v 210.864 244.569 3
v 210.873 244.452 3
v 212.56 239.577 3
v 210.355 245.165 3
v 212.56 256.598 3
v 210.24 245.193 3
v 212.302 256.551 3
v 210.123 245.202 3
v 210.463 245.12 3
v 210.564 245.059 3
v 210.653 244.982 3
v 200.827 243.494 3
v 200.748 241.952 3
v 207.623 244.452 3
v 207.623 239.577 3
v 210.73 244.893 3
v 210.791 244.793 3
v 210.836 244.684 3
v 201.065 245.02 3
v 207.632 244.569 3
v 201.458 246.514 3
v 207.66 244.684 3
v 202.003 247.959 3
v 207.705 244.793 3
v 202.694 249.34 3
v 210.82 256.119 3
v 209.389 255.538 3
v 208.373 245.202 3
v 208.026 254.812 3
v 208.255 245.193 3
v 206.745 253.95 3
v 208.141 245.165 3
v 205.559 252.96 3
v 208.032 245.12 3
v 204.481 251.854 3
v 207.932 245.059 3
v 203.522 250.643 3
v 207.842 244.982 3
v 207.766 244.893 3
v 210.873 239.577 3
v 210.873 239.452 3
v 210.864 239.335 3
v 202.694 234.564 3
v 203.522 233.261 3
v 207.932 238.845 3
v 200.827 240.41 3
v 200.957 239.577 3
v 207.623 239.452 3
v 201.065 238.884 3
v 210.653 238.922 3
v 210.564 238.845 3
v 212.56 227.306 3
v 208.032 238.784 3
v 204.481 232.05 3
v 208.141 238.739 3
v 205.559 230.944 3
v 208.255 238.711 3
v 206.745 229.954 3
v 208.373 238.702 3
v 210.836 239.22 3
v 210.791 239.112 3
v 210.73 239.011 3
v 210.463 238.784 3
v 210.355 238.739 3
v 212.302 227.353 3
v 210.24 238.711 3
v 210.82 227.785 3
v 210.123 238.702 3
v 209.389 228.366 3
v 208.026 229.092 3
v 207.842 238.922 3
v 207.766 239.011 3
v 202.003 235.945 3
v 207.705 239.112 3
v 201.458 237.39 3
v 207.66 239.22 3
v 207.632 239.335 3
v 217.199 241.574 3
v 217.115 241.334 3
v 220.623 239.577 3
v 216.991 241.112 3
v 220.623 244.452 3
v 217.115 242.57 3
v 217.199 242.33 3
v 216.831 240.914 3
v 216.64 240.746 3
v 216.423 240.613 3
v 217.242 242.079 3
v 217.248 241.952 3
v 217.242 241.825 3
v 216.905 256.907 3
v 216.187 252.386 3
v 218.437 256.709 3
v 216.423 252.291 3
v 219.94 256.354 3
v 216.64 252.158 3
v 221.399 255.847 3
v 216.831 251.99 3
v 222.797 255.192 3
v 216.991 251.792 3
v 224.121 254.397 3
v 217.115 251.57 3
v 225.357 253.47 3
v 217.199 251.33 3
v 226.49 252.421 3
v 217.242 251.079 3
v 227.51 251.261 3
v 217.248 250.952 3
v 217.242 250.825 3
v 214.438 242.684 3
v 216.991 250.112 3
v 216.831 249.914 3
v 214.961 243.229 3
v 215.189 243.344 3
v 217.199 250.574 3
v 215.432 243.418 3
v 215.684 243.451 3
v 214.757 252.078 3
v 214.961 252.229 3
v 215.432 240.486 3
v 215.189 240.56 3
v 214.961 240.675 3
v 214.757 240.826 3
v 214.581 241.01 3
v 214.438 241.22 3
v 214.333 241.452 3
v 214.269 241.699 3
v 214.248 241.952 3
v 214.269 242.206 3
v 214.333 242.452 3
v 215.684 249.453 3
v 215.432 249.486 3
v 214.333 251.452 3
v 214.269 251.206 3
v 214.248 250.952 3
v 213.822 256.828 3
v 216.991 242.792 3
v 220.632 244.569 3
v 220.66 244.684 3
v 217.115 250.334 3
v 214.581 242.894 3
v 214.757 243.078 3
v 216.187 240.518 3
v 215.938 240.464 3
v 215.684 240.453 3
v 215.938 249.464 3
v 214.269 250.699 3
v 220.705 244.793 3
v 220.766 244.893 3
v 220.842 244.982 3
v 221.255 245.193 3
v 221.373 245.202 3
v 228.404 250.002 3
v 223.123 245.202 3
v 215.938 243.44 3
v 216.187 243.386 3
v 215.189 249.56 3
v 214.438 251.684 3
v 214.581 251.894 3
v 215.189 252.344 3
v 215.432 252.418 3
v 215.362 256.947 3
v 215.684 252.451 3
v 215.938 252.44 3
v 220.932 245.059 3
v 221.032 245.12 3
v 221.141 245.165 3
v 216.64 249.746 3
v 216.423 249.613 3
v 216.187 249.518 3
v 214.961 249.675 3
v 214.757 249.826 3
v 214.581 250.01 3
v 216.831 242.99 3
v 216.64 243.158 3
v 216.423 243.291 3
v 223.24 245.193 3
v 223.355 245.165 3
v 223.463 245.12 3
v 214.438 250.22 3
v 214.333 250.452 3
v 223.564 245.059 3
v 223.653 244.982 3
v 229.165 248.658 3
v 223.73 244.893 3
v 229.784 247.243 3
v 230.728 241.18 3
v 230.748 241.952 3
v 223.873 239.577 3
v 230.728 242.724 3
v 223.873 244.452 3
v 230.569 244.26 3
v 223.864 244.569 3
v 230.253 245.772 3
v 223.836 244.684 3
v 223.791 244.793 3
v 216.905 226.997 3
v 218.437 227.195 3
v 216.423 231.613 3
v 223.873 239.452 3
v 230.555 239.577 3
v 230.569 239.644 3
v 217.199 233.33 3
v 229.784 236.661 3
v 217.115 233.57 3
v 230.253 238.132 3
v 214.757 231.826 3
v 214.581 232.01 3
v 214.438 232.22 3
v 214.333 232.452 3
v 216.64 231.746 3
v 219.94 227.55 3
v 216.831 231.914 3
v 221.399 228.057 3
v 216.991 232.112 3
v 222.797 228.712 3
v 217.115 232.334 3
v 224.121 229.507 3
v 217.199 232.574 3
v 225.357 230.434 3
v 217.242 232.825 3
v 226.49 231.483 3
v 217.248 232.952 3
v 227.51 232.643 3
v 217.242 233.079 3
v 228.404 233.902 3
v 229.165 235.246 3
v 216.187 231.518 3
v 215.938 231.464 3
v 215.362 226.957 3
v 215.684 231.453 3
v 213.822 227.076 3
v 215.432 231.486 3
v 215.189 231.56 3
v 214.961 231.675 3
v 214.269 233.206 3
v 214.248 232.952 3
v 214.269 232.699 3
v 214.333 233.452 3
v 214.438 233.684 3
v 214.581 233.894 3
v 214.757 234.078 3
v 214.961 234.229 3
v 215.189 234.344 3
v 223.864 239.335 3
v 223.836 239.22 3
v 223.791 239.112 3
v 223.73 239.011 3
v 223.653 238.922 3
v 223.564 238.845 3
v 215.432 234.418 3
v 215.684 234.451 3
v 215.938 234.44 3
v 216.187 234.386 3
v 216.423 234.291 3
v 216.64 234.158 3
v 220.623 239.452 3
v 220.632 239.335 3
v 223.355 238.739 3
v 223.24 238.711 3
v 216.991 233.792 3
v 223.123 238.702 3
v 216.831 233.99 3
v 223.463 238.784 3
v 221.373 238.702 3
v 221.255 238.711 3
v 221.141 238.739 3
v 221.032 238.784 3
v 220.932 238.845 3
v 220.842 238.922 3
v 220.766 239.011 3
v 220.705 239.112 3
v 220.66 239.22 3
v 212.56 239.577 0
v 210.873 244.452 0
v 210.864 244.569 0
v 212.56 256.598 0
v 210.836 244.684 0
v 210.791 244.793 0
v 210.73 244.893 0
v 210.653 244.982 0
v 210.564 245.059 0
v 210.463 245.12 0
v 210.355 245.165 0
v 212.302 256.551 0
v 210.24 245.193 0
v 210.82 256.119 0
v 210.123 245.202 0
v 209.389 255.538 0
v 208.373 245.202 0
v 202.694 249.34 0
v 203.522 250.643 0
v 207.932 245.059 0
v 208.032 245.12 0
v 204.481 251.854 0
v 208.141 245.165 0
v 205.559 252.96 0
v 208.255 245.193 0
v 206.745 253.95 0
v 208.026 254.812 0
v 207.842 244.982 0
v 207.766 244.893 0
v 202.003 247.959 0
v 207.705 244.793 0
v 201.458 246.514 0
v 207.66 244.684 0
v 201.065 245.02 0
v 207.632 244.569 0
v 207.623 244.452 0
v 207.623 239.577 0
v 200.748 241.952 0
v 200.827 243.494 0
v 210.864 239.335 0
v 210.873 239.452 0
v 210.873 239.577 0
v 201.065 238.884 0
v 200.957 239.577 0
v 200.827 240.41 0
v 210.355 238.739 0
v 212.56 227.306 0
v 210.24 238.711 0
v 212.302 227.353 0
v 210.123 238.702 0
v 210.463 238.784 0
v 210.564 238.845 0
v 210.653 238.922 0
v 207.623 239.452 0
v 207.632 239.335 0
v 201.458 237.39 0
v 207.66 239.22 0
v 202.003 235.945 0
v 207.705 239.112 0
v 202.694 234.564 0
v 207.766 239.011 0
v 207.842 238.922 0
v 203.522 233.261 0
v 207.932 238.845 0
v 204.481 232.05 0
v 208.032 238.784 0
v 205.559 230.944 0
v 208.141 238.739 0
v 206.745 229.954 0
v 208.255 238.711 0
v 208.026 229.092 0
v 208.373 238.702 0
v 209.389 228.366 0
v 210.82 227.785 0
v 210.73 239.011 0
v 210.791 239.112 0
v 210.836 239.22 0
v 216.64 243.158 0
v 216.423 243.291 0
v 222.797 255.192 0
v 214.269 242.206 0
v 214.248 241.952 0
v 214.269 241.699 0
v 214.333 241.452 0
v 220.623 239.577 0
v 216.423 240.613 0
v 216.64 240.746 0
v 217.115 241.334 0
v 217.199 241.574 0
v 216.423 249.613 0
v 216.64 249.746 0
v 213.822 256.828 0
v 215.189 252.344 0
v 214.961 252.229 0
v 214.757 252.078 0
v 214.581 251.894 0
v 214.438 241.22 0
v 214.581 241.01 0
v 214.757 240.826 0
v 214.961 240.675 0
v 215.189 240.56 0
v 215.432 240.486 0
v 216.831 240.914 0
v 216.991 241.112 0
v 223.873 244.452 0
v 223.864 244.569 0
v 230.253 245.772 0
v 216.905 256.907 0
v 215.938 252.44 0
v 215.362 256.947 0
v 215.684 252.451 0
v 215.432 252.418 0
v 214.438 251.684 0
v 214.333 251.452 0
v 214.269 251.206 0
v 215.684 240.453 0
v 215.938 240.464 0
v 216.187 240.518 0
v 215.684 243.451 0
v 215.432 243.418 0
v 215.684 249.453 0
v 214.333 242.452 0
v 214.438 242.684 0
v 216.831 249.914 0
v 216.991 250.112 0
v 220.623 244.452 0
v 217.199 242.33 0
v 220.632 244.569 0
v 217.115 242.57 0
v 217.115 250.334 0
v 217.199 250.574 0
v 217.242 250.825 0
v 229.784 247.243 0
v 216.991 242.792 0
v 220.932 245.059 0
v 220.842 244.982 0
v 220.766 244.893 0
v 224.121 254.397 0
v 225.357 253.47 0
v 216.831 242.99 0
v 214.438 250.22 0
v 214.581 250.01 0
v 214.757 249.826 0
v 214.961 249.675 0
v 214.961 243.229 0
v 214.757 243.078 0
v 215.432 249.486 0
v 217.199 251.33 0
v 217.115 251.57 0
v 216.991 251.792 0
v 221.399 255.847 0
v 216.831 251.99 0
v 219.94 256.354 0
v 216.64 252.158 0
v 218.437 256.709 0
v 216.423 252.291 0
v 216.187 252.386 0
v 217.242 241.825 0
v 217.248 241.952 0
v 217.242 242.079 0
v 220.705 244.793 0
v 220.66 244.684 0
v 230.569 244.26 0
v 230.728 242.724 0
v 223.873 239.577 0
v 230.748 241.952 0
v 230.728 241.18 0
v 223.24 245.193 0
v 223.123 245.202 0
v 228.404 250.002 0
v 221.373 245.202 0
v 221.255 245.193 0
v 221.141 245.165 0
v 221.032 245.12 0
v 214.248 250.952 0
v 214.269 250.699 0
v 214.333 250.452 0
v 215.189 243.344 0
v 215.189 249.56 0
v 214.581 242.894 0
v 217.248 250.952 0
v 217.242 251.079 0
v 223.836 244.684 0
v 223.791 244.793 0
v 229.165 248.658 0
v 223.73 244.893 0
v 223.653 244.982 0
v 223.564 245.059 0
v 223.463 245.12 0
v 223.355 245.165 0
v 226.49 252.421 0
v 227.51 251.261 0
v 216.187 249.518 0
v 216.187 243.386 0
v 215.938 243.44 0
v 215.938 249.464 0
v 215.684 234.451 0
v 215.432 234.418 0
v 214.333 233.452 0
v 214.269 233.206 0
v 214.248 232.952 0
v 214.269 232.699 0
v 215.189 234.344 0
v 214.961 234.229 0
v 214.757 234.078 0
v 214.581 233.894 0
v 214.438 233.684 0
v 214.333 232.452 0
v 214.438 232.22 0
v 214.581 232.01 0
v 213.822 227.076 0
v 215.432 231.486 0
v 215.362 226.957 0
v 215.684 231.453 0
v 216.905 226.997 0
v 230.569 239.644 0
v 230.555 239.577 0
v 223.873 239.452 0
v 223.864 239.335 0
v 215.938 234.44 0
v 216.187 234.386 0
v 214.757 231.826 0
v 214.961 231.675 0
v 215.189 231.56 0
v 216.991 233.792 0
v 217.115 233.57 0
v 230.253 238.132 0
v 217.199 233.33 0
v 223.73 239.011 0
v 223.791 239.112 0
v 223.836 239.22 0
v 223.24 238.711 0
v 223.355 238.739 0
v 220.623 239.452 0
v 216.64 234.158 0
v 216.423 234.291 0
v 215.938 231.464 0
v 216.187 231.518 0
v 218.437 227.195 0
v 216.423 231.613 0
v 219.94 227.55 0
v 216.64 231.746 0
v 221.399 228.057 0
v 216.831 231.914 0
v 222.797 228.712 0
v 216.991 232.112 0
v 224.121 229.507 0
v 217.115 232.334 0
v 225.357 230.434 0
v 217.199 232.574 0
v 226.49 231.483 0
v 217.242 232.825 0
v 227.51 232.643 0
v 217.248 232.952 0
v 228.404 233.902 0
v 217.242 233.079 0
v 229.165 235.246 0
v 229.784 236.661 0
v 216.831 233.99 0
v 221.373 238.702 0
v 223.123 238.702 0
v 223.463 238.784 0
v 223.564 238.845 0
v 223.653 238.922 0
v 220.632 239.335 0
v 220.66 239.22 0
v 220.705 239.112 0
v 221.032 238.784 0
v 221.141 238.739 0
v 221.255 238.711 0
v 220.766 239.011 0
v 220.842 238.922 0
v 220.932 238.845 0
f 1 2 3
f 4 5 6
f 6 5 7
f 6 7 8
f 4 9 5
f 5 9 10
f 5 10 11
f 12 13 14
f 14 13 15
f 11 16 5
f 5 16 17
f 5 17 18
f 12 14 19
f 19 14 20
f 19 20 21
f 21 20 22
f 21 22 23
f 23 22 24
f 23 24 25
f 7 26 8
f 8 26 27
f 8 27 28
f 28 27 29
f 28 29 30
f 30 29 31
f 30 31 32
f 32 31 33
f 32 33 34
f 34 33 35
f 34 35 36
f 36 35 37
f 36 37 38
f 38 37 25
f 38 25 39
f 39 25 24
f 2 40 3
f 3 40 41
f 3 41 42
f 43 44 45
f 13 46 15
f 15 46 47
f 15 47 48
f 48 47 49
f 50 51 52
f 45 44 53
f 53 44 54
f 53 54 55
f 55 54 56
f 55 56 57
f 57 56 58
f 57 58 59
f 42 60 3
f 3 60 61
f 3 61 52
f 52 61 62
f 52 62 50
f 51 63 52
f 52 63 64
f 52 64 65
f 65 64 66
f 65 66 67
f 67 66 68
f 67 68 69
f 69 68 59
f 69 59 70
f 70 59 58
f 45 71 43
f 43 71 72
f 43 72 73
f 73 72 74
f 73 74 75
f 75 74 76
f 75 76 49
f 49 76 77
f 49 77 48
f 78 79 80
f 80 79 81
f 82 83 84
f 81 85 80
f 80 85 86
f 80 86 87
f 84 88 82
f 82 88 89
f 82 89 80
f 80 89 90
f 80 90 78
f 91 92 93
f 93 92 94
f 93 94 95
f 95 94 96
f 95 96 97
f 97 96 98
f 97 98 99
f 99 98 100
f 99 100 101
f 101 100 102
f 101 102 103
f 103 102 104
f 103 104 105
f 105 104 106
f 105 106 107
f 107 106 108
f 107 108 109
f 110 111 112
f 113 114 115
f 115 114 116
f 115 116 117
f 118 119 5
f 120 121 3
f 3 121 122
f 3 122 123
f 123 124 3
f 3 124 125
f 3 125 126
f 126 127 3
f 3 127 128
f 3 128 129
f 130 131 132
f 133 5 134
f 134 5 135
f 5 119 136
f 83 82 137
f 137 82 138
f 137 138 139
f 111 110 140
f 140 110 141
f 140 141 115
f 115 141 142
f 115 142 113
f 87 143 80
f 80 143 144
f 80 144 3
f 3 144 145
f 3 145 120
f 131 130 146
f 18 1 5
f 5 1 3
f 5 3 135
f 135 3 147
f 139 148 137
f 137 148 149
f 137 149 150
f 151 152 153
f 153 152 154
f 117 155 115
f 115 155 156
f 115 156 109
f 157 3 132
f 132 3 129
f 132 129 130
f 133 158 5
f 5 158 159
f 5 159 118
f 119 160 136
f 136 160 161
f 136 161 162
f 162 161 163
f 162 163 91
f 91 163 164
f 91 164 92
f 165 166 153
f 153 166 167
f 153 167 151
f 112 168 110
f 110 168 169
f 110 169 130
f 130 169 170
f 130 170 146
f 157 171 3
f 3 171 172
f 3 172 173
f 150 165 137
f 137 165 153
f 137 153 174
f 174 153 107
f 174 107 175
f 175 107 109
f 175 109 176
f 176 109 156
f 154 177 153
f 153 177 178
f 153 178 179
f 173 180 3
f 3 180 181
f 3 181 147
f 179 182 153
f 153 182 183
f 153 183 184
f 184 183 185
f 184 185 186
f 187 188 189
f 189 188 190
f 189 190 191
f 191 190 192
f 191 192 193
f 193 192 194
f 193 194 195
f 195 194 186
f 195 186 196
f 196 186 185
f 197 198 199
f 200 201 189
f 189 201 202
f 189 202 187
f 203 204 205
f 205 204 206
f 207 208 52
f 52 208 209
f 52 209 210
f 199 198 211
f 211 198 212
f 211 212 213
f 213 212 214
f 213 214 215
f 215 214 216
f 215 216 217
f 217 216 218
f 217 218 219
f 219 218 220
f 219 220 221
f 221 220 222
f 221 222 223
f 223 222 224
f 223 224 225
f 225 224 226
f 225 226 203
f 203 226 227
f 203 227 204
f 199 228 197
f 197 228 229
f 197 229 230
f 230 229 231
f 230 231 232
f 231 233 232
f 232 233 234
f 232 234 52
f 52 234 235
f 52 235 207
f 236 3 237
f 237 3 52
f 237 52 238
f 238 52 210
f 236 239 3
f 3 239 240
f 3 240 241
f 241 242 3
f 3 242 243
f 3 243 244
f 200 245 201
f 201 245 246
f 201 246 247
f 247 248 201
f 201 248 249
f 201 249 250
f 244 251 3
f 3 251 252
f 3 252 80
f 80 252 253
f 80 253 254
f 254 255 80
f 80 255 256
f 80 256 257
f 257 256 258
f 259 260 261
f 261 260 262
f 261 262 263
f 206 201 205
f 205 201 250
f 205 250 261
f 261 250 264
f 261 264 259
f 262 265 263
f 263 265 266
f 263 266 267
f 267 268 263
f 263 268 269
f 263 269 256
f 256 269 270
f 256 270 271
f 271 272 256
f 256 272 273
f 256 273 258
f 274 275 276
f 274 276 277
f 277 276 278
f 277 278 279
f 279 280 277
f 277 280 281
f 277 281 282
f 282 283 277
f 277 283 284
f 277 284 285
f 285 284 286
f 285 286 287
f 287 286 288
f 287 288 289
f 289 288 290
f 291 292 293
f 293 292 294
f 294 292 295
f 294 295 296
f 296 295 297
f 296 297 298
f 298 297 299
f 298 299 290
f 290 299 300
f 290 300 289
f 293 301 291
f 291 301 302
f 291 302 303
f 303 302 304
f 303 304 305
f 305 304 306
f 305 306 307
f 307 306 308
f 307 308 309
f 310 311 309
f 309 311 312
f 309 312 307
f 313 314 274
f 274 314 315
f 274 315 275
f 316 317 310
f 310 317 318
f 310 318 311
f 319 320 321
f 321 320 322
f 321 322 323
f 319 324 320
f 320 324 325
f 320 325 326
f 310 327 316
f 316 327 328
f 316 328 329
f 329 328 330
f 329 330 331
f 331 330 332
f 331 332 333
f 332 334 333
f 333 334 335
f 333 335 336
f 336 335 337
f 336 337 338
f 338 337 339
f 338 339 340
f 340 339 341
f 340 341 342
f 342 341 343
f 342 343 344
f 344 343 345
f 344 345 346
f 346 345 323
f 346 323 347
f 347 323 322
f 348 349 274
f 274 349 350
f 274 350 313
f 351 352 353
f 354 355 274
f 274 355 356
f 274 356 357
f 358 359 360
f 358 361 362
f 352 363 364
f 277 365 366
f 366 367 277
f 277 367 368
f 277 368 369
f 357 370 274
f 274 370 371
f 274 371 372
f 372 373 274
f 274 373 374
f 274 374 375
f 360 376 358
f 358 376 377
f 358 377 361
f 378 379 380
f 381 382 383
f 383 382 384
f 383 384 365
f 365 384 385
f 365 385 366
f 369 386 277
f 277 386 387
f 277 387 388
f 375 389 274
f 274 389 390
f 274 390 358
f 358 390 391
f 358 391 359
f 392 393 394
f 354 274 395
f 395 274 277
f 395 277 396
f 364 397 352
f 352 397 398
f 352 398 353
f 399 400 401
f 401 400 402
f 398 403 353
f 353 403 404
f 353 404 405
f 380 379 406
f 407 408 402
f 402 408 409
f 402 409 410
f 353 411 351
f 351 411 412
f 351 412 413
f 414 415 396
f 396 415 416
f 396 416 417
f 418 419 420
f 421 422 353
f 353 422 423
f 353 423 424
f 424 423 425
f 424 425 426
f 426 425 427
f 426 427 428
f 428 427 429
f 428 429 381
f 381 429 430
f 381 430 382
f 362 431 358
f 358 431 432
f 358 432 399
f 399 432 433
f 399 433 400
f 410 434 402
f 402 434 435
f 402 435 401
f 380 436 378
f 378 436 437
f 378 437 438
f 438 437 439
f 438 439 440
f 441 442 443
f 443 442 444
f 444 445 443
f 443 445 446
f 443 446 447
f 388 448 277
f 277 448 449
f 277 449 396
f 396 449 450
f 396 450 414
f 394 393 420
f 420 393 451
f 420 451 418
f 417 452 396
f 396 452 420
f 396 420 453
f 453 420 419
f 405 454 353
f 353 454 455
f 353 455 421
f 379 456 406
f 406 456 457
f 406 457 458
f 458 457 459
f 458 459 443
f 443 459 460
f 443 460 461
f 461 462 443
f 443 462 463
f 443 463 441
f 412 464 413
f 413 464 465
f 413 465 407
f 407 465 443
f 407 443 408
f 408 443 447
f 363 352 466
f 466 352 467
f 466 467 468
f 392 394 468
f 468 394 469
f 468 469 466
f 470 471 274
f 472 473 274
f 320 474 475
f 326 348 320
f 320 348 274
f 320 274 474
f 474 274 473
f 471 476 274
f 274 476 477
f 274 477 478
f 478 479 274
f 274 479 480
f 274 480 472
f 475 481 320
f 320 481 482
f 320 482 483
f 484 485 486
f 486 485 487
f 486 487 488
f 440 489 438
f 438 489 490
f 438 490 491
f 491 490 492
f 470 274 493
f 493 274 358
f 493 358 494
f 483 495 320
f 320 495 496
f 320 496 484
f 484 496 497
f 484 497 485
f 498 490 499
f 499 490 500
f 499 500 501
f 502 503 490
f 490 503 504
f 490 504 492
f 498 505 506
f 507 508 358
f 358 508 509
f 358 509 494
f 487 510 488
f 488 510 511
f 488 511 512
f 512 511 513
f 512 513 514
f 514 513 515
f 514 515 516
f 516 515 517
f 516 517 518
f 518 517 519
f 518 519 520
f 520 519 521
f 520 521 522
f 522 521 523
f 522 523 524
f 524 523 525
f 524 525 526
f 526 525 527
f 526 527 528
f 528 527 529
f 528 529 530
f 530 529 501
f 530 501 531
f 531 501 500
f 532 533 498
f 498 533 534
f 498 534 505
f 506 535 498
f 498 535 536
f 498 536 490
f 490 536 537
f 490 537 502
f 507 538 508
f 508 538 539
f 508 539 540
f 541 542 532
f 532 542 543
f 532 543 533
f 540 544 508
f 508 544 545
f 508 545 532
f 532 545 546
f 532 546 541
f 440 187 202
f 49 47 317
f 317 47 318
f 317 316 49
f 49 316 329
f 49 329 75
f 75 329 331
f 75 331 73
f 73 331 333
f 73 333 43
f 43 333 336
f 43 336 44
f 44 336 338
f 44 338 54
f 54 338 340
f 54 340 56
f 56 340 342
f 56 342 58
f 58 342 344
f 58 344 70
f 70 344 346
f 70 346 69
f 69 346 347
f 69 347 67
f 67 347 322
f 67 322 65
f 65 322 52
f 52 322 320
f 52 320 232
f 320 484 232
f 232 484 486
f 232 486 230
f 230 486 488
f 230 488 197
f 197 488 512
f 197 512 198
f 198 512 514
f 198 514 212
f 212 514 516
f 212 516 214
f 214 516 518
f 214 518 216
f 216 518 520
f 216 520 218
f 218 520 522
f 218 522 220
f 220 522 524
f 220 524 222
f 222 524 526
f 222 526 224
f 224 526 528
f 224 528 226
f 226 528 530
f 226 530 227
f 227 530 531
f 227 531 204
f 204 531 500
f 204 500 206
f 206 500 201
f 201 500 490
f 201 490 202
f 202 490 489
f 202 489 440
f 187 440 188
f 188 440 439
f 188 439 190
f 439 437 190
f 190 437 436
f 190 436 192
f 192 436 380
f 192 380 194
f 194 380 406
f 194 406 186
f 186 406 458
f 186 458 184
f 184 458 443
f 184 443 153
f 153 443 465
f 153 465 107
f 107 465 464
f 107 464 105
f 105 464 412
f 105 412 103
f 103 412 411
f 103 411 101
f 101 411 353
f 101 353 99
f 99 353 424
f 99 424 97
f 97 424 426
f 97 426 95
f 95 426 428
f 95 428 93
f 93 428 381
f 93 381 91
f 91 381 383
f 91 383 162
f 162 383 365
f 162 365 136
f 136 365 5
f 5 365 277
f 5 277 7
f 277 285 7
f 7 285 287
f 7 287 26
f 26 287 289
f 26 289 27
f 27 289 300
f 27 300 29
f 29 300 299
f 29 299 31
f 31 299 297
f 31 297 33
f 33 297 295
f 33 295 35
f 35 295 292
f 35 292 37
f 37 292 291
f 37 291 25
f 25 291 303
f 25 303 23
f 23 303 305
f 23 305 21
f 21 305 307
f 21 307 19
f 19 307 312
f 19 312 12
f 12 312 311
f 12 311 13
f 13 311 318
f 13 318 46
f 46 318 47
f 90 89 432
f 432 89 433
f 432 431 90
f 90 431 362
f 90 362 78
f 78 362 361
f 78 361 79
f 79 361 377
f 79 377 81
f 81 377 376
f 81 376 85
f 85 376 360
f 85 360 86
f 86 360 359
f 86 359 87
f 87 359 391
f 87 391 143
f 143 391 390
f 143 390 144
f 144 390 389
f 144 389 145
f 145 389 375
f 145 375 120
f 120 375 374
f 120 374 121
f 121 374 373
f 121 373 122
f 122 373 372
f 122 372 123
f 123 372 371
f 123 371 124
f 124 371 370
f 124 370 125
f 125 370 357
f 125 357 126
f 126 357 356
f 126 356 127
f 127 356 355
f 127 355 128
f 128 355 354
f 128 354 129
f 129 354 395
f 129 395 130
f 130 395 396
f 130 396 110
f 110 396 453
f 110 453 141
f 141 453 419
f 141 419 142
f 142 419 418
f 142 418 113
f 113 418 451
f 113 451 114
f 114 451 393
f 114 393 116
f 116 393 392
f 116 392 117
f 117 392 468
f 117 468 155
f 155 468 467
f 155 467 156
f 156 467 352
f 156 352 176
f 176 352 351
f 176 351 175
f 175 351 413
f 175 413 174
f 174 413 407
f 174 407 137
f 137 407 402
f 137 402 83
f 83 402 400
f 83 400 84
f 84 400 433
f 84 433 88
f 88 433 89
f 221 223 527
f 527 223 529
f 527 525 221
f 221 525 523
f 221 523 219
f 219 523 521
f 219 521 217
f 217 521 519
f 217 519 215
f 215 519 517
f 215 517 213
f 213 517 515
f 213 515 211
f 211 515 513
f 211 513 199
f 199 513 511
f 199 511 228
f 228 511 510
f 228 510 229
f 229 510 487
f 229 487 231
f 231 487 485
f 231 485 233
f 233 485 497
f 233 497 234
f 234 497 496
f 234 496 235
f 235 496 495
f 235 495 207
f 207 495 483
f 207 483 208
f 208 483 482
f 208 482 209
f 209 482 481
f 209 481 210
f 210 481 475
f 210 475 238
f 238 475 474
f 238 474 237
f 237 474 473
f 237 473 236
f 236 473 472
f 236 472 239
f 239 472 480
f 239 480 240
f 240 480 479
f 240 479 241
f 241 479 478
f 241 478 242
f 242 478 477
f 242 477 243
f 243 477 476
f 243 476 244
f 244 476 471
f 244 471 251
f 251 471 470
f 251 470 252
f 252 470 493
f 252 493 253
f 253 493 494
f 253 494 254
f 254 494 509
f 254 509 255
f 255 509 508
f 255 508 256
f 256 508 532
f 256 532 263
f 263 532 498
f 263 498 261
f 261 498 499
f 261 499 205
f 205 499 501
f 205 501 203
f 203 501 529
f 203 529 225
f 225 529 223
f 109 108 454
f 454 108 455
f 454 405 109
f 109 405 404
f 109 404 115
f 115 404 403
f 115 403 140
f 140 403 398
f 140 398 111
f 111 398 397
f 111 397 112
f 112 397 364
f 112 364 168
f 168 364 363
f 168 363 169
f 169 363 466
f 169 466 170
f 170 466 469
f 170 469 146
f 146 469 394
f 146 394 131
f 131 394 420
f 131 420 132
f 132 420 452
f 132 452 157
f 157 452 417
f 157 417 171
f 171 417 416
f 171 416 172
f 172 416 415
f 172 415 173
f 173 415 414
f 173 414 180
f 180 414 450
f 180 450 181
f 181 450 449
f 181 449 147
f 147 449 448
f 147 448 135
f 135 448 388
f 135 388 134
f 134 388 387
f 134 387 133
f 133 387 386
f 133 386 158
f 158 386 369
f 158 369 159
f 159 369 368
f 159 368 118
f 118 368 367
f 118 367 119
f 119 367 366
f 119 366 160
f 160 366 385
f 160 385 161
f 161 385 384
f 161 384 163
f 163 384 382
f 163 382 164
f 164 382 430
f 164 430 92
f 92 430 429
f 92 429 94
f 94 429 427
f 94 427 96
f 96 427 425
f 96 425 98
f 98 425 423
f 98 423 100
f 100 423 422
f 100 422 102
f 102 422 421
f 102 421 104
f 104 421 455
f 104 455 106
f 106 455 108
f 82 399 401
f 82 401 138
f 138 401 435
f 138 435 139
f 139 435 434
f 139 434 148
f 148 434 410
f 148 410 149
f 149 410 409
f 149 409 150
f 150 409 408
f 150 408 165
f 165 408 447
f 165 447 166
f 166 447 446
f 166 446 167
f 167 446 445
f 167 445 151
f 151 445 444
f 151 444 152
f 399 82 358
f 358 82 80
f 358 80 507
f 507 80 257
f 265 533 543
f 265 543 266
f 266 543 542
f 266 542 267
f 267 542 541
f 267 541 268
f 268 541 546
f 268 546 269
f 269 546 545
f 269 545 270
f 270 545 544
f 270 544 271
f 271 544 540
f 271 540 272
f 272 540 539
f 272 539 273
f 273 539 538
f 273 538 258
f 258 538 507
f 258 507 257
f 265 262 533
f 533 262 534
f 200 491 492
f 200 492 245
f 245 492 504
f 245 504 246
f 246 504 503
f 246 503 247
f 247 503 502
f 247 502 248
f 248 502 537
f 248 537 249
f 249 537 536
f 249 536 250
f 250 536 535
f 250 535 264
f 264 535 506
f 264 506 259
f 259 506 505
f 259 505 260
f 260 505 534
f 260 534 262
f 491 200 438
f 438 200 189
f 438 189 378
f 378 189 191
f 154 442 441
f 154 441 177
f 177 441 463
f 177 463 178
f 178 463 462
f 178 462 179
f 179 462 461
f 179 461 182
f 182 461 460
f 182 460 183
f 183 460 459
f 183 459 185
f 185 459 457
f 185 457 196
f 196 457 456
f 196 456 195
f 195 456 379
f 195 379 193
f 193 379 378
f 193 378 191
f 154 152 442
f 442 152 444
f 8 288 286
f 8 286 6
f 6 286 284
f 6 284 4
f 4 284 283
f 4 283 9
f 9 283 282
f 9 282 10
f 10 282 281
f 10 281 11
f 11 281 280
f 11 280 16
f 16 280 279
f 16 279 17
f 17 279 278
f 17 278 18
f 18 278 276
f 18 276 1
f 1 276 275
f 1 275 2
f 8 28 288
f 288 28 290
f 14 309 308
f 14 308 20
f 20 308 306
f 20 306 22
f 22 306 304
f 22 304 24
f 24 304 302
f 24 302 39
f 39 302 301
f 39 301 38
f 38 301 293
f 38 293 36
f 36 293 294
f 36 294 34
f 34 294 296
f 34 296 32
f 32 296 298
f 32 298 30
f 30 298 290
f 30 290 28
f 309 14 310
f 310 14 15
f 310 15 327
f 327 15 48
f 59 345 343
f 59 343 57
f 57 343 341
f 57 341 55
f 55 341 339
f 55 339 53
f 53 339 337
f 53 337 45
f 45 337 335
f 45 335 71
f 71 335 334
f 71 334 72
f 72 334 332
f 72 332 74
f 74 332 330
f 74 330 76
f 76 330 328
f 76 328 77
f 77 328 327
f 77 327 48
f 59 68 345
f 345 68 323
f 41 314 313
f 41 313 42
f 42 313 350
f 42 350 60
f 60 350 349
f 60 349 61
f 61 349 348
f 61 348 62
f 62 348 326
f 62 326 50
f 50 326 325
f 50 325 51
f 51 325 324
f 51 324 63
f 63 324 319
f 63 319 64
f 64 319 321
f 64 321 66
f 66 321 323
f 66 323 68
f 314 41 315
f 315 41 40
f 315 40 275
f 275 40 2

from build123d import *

# Parameters (mm, degrees)
MODEL_R                 = 15
MODEL_R_2               = 1.5
SALIENTE_EXTRUIR1_DEPTH = 3


with BuildPart() as part:
    # Model → Saliente-Extruir1 (new body)
    with BuildSketch(Plane.XY):
        with Locations((215.747807914, 241.952019993)):
            Circle(MODEL_R)
        with Locations((215.747807914, 241.952019993)):
            Circle(MODEL_R_2, mode=Mode.SUBTRACT)
        with Locations((215.747807914, 232.952019993)):
            Circle(MODEL_R_2, mode=Mode.SUBTRACT)
        with Locations((215.747807914, 250.952019993)):
            Circle(MODEL_R_2, mode=Mode.SUBTRACT)
        with BuildLine():
            Line((223.122807913, 245.202019993), (221.372807913, 245.202019993))
            ThreePointArc((221.372807913, 245.202019993), (220.842477828, 244.982350079), (220.622807913, 244.452019993))
            Line((220.622807913, 244.452019993), (220.622807913, 239.452019993))
            ThreePointArc((220.622807913, 239.452019993), (220.842477828, 238.921689907), (221.372807913, 238.702019993))
            Line((221.372807913, 238.702019993), (223.122807913, 238.702019993))
            ThreePointArc((223.122807913, 238.702019993), (223.653137999, 238.921689907), (223.872807913, 239.452019993))
            Line((223.872807913, 239.452019993), (223.872807913, 244.452019993))
            ThreePointArc((223.872807913, 244.452019993), (223.653137999, 244.982350079), (223.122807913, 245.202019993))
        make_face(mode=Mode.SUBTRACT)
        with BuildLine():
            Line((208.372807913, 245.202019993), (210.122807913, 245.202019993))
            ThreePointArc((210.122807913, 245.202019993), (210.653137999, 244.982350079), (210.872807913, 244.452019993))
            Line((210.872807913, 244.452019993), (210.872807913, 239.452019993))
            ThreePointArc((210.872807913, 239.452019993), (210.653137999, 238.921689907), (210.122807913, 238.702019993))
            Line((210.122807913, 238.702019993), (208.372807913, 238.702019993))
            ThreePointArc((208.372807913, 238.702019993), (207.842477828, 238.921689907), (207.622807913, 239.452019993))
            Line((207.622807913, 239.452019993), (207.622807913, 244.452019993))
            ThreePointArc((207.622807913, 244.452019993), (207.842477828, 244.982350079), (208.372807913, 245.202019993))
        make_face(mode=Mode.SUBTRACT)
    extrude(amount=SALIENTE_EXTRUIR1_DEPTH)


solid = part.part
